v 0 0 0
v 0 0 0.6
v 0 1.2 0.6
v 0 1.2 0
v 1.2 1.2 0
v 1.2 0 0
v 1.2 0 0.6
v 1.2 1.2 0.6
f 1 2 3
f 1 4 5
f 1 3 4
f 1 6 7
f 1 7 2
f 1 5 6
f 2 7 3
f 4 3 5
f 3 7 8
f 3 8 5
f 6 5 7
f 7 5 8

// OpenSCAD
/* Warning, this is a very basic generator with a lot of approximation 
input data : [UDFN, HEA, 1.2x1.2x0.6mm, 4, , A, C04-01044A]
generated by com.zoubworld.electronics.cad.model3d.Basic
Date : Sun Feb 15 10:50:49 CET 2026
*/

//body
color("black")
translate([0,0,0])
cube([1.2,1.2,0.6], center=false);
